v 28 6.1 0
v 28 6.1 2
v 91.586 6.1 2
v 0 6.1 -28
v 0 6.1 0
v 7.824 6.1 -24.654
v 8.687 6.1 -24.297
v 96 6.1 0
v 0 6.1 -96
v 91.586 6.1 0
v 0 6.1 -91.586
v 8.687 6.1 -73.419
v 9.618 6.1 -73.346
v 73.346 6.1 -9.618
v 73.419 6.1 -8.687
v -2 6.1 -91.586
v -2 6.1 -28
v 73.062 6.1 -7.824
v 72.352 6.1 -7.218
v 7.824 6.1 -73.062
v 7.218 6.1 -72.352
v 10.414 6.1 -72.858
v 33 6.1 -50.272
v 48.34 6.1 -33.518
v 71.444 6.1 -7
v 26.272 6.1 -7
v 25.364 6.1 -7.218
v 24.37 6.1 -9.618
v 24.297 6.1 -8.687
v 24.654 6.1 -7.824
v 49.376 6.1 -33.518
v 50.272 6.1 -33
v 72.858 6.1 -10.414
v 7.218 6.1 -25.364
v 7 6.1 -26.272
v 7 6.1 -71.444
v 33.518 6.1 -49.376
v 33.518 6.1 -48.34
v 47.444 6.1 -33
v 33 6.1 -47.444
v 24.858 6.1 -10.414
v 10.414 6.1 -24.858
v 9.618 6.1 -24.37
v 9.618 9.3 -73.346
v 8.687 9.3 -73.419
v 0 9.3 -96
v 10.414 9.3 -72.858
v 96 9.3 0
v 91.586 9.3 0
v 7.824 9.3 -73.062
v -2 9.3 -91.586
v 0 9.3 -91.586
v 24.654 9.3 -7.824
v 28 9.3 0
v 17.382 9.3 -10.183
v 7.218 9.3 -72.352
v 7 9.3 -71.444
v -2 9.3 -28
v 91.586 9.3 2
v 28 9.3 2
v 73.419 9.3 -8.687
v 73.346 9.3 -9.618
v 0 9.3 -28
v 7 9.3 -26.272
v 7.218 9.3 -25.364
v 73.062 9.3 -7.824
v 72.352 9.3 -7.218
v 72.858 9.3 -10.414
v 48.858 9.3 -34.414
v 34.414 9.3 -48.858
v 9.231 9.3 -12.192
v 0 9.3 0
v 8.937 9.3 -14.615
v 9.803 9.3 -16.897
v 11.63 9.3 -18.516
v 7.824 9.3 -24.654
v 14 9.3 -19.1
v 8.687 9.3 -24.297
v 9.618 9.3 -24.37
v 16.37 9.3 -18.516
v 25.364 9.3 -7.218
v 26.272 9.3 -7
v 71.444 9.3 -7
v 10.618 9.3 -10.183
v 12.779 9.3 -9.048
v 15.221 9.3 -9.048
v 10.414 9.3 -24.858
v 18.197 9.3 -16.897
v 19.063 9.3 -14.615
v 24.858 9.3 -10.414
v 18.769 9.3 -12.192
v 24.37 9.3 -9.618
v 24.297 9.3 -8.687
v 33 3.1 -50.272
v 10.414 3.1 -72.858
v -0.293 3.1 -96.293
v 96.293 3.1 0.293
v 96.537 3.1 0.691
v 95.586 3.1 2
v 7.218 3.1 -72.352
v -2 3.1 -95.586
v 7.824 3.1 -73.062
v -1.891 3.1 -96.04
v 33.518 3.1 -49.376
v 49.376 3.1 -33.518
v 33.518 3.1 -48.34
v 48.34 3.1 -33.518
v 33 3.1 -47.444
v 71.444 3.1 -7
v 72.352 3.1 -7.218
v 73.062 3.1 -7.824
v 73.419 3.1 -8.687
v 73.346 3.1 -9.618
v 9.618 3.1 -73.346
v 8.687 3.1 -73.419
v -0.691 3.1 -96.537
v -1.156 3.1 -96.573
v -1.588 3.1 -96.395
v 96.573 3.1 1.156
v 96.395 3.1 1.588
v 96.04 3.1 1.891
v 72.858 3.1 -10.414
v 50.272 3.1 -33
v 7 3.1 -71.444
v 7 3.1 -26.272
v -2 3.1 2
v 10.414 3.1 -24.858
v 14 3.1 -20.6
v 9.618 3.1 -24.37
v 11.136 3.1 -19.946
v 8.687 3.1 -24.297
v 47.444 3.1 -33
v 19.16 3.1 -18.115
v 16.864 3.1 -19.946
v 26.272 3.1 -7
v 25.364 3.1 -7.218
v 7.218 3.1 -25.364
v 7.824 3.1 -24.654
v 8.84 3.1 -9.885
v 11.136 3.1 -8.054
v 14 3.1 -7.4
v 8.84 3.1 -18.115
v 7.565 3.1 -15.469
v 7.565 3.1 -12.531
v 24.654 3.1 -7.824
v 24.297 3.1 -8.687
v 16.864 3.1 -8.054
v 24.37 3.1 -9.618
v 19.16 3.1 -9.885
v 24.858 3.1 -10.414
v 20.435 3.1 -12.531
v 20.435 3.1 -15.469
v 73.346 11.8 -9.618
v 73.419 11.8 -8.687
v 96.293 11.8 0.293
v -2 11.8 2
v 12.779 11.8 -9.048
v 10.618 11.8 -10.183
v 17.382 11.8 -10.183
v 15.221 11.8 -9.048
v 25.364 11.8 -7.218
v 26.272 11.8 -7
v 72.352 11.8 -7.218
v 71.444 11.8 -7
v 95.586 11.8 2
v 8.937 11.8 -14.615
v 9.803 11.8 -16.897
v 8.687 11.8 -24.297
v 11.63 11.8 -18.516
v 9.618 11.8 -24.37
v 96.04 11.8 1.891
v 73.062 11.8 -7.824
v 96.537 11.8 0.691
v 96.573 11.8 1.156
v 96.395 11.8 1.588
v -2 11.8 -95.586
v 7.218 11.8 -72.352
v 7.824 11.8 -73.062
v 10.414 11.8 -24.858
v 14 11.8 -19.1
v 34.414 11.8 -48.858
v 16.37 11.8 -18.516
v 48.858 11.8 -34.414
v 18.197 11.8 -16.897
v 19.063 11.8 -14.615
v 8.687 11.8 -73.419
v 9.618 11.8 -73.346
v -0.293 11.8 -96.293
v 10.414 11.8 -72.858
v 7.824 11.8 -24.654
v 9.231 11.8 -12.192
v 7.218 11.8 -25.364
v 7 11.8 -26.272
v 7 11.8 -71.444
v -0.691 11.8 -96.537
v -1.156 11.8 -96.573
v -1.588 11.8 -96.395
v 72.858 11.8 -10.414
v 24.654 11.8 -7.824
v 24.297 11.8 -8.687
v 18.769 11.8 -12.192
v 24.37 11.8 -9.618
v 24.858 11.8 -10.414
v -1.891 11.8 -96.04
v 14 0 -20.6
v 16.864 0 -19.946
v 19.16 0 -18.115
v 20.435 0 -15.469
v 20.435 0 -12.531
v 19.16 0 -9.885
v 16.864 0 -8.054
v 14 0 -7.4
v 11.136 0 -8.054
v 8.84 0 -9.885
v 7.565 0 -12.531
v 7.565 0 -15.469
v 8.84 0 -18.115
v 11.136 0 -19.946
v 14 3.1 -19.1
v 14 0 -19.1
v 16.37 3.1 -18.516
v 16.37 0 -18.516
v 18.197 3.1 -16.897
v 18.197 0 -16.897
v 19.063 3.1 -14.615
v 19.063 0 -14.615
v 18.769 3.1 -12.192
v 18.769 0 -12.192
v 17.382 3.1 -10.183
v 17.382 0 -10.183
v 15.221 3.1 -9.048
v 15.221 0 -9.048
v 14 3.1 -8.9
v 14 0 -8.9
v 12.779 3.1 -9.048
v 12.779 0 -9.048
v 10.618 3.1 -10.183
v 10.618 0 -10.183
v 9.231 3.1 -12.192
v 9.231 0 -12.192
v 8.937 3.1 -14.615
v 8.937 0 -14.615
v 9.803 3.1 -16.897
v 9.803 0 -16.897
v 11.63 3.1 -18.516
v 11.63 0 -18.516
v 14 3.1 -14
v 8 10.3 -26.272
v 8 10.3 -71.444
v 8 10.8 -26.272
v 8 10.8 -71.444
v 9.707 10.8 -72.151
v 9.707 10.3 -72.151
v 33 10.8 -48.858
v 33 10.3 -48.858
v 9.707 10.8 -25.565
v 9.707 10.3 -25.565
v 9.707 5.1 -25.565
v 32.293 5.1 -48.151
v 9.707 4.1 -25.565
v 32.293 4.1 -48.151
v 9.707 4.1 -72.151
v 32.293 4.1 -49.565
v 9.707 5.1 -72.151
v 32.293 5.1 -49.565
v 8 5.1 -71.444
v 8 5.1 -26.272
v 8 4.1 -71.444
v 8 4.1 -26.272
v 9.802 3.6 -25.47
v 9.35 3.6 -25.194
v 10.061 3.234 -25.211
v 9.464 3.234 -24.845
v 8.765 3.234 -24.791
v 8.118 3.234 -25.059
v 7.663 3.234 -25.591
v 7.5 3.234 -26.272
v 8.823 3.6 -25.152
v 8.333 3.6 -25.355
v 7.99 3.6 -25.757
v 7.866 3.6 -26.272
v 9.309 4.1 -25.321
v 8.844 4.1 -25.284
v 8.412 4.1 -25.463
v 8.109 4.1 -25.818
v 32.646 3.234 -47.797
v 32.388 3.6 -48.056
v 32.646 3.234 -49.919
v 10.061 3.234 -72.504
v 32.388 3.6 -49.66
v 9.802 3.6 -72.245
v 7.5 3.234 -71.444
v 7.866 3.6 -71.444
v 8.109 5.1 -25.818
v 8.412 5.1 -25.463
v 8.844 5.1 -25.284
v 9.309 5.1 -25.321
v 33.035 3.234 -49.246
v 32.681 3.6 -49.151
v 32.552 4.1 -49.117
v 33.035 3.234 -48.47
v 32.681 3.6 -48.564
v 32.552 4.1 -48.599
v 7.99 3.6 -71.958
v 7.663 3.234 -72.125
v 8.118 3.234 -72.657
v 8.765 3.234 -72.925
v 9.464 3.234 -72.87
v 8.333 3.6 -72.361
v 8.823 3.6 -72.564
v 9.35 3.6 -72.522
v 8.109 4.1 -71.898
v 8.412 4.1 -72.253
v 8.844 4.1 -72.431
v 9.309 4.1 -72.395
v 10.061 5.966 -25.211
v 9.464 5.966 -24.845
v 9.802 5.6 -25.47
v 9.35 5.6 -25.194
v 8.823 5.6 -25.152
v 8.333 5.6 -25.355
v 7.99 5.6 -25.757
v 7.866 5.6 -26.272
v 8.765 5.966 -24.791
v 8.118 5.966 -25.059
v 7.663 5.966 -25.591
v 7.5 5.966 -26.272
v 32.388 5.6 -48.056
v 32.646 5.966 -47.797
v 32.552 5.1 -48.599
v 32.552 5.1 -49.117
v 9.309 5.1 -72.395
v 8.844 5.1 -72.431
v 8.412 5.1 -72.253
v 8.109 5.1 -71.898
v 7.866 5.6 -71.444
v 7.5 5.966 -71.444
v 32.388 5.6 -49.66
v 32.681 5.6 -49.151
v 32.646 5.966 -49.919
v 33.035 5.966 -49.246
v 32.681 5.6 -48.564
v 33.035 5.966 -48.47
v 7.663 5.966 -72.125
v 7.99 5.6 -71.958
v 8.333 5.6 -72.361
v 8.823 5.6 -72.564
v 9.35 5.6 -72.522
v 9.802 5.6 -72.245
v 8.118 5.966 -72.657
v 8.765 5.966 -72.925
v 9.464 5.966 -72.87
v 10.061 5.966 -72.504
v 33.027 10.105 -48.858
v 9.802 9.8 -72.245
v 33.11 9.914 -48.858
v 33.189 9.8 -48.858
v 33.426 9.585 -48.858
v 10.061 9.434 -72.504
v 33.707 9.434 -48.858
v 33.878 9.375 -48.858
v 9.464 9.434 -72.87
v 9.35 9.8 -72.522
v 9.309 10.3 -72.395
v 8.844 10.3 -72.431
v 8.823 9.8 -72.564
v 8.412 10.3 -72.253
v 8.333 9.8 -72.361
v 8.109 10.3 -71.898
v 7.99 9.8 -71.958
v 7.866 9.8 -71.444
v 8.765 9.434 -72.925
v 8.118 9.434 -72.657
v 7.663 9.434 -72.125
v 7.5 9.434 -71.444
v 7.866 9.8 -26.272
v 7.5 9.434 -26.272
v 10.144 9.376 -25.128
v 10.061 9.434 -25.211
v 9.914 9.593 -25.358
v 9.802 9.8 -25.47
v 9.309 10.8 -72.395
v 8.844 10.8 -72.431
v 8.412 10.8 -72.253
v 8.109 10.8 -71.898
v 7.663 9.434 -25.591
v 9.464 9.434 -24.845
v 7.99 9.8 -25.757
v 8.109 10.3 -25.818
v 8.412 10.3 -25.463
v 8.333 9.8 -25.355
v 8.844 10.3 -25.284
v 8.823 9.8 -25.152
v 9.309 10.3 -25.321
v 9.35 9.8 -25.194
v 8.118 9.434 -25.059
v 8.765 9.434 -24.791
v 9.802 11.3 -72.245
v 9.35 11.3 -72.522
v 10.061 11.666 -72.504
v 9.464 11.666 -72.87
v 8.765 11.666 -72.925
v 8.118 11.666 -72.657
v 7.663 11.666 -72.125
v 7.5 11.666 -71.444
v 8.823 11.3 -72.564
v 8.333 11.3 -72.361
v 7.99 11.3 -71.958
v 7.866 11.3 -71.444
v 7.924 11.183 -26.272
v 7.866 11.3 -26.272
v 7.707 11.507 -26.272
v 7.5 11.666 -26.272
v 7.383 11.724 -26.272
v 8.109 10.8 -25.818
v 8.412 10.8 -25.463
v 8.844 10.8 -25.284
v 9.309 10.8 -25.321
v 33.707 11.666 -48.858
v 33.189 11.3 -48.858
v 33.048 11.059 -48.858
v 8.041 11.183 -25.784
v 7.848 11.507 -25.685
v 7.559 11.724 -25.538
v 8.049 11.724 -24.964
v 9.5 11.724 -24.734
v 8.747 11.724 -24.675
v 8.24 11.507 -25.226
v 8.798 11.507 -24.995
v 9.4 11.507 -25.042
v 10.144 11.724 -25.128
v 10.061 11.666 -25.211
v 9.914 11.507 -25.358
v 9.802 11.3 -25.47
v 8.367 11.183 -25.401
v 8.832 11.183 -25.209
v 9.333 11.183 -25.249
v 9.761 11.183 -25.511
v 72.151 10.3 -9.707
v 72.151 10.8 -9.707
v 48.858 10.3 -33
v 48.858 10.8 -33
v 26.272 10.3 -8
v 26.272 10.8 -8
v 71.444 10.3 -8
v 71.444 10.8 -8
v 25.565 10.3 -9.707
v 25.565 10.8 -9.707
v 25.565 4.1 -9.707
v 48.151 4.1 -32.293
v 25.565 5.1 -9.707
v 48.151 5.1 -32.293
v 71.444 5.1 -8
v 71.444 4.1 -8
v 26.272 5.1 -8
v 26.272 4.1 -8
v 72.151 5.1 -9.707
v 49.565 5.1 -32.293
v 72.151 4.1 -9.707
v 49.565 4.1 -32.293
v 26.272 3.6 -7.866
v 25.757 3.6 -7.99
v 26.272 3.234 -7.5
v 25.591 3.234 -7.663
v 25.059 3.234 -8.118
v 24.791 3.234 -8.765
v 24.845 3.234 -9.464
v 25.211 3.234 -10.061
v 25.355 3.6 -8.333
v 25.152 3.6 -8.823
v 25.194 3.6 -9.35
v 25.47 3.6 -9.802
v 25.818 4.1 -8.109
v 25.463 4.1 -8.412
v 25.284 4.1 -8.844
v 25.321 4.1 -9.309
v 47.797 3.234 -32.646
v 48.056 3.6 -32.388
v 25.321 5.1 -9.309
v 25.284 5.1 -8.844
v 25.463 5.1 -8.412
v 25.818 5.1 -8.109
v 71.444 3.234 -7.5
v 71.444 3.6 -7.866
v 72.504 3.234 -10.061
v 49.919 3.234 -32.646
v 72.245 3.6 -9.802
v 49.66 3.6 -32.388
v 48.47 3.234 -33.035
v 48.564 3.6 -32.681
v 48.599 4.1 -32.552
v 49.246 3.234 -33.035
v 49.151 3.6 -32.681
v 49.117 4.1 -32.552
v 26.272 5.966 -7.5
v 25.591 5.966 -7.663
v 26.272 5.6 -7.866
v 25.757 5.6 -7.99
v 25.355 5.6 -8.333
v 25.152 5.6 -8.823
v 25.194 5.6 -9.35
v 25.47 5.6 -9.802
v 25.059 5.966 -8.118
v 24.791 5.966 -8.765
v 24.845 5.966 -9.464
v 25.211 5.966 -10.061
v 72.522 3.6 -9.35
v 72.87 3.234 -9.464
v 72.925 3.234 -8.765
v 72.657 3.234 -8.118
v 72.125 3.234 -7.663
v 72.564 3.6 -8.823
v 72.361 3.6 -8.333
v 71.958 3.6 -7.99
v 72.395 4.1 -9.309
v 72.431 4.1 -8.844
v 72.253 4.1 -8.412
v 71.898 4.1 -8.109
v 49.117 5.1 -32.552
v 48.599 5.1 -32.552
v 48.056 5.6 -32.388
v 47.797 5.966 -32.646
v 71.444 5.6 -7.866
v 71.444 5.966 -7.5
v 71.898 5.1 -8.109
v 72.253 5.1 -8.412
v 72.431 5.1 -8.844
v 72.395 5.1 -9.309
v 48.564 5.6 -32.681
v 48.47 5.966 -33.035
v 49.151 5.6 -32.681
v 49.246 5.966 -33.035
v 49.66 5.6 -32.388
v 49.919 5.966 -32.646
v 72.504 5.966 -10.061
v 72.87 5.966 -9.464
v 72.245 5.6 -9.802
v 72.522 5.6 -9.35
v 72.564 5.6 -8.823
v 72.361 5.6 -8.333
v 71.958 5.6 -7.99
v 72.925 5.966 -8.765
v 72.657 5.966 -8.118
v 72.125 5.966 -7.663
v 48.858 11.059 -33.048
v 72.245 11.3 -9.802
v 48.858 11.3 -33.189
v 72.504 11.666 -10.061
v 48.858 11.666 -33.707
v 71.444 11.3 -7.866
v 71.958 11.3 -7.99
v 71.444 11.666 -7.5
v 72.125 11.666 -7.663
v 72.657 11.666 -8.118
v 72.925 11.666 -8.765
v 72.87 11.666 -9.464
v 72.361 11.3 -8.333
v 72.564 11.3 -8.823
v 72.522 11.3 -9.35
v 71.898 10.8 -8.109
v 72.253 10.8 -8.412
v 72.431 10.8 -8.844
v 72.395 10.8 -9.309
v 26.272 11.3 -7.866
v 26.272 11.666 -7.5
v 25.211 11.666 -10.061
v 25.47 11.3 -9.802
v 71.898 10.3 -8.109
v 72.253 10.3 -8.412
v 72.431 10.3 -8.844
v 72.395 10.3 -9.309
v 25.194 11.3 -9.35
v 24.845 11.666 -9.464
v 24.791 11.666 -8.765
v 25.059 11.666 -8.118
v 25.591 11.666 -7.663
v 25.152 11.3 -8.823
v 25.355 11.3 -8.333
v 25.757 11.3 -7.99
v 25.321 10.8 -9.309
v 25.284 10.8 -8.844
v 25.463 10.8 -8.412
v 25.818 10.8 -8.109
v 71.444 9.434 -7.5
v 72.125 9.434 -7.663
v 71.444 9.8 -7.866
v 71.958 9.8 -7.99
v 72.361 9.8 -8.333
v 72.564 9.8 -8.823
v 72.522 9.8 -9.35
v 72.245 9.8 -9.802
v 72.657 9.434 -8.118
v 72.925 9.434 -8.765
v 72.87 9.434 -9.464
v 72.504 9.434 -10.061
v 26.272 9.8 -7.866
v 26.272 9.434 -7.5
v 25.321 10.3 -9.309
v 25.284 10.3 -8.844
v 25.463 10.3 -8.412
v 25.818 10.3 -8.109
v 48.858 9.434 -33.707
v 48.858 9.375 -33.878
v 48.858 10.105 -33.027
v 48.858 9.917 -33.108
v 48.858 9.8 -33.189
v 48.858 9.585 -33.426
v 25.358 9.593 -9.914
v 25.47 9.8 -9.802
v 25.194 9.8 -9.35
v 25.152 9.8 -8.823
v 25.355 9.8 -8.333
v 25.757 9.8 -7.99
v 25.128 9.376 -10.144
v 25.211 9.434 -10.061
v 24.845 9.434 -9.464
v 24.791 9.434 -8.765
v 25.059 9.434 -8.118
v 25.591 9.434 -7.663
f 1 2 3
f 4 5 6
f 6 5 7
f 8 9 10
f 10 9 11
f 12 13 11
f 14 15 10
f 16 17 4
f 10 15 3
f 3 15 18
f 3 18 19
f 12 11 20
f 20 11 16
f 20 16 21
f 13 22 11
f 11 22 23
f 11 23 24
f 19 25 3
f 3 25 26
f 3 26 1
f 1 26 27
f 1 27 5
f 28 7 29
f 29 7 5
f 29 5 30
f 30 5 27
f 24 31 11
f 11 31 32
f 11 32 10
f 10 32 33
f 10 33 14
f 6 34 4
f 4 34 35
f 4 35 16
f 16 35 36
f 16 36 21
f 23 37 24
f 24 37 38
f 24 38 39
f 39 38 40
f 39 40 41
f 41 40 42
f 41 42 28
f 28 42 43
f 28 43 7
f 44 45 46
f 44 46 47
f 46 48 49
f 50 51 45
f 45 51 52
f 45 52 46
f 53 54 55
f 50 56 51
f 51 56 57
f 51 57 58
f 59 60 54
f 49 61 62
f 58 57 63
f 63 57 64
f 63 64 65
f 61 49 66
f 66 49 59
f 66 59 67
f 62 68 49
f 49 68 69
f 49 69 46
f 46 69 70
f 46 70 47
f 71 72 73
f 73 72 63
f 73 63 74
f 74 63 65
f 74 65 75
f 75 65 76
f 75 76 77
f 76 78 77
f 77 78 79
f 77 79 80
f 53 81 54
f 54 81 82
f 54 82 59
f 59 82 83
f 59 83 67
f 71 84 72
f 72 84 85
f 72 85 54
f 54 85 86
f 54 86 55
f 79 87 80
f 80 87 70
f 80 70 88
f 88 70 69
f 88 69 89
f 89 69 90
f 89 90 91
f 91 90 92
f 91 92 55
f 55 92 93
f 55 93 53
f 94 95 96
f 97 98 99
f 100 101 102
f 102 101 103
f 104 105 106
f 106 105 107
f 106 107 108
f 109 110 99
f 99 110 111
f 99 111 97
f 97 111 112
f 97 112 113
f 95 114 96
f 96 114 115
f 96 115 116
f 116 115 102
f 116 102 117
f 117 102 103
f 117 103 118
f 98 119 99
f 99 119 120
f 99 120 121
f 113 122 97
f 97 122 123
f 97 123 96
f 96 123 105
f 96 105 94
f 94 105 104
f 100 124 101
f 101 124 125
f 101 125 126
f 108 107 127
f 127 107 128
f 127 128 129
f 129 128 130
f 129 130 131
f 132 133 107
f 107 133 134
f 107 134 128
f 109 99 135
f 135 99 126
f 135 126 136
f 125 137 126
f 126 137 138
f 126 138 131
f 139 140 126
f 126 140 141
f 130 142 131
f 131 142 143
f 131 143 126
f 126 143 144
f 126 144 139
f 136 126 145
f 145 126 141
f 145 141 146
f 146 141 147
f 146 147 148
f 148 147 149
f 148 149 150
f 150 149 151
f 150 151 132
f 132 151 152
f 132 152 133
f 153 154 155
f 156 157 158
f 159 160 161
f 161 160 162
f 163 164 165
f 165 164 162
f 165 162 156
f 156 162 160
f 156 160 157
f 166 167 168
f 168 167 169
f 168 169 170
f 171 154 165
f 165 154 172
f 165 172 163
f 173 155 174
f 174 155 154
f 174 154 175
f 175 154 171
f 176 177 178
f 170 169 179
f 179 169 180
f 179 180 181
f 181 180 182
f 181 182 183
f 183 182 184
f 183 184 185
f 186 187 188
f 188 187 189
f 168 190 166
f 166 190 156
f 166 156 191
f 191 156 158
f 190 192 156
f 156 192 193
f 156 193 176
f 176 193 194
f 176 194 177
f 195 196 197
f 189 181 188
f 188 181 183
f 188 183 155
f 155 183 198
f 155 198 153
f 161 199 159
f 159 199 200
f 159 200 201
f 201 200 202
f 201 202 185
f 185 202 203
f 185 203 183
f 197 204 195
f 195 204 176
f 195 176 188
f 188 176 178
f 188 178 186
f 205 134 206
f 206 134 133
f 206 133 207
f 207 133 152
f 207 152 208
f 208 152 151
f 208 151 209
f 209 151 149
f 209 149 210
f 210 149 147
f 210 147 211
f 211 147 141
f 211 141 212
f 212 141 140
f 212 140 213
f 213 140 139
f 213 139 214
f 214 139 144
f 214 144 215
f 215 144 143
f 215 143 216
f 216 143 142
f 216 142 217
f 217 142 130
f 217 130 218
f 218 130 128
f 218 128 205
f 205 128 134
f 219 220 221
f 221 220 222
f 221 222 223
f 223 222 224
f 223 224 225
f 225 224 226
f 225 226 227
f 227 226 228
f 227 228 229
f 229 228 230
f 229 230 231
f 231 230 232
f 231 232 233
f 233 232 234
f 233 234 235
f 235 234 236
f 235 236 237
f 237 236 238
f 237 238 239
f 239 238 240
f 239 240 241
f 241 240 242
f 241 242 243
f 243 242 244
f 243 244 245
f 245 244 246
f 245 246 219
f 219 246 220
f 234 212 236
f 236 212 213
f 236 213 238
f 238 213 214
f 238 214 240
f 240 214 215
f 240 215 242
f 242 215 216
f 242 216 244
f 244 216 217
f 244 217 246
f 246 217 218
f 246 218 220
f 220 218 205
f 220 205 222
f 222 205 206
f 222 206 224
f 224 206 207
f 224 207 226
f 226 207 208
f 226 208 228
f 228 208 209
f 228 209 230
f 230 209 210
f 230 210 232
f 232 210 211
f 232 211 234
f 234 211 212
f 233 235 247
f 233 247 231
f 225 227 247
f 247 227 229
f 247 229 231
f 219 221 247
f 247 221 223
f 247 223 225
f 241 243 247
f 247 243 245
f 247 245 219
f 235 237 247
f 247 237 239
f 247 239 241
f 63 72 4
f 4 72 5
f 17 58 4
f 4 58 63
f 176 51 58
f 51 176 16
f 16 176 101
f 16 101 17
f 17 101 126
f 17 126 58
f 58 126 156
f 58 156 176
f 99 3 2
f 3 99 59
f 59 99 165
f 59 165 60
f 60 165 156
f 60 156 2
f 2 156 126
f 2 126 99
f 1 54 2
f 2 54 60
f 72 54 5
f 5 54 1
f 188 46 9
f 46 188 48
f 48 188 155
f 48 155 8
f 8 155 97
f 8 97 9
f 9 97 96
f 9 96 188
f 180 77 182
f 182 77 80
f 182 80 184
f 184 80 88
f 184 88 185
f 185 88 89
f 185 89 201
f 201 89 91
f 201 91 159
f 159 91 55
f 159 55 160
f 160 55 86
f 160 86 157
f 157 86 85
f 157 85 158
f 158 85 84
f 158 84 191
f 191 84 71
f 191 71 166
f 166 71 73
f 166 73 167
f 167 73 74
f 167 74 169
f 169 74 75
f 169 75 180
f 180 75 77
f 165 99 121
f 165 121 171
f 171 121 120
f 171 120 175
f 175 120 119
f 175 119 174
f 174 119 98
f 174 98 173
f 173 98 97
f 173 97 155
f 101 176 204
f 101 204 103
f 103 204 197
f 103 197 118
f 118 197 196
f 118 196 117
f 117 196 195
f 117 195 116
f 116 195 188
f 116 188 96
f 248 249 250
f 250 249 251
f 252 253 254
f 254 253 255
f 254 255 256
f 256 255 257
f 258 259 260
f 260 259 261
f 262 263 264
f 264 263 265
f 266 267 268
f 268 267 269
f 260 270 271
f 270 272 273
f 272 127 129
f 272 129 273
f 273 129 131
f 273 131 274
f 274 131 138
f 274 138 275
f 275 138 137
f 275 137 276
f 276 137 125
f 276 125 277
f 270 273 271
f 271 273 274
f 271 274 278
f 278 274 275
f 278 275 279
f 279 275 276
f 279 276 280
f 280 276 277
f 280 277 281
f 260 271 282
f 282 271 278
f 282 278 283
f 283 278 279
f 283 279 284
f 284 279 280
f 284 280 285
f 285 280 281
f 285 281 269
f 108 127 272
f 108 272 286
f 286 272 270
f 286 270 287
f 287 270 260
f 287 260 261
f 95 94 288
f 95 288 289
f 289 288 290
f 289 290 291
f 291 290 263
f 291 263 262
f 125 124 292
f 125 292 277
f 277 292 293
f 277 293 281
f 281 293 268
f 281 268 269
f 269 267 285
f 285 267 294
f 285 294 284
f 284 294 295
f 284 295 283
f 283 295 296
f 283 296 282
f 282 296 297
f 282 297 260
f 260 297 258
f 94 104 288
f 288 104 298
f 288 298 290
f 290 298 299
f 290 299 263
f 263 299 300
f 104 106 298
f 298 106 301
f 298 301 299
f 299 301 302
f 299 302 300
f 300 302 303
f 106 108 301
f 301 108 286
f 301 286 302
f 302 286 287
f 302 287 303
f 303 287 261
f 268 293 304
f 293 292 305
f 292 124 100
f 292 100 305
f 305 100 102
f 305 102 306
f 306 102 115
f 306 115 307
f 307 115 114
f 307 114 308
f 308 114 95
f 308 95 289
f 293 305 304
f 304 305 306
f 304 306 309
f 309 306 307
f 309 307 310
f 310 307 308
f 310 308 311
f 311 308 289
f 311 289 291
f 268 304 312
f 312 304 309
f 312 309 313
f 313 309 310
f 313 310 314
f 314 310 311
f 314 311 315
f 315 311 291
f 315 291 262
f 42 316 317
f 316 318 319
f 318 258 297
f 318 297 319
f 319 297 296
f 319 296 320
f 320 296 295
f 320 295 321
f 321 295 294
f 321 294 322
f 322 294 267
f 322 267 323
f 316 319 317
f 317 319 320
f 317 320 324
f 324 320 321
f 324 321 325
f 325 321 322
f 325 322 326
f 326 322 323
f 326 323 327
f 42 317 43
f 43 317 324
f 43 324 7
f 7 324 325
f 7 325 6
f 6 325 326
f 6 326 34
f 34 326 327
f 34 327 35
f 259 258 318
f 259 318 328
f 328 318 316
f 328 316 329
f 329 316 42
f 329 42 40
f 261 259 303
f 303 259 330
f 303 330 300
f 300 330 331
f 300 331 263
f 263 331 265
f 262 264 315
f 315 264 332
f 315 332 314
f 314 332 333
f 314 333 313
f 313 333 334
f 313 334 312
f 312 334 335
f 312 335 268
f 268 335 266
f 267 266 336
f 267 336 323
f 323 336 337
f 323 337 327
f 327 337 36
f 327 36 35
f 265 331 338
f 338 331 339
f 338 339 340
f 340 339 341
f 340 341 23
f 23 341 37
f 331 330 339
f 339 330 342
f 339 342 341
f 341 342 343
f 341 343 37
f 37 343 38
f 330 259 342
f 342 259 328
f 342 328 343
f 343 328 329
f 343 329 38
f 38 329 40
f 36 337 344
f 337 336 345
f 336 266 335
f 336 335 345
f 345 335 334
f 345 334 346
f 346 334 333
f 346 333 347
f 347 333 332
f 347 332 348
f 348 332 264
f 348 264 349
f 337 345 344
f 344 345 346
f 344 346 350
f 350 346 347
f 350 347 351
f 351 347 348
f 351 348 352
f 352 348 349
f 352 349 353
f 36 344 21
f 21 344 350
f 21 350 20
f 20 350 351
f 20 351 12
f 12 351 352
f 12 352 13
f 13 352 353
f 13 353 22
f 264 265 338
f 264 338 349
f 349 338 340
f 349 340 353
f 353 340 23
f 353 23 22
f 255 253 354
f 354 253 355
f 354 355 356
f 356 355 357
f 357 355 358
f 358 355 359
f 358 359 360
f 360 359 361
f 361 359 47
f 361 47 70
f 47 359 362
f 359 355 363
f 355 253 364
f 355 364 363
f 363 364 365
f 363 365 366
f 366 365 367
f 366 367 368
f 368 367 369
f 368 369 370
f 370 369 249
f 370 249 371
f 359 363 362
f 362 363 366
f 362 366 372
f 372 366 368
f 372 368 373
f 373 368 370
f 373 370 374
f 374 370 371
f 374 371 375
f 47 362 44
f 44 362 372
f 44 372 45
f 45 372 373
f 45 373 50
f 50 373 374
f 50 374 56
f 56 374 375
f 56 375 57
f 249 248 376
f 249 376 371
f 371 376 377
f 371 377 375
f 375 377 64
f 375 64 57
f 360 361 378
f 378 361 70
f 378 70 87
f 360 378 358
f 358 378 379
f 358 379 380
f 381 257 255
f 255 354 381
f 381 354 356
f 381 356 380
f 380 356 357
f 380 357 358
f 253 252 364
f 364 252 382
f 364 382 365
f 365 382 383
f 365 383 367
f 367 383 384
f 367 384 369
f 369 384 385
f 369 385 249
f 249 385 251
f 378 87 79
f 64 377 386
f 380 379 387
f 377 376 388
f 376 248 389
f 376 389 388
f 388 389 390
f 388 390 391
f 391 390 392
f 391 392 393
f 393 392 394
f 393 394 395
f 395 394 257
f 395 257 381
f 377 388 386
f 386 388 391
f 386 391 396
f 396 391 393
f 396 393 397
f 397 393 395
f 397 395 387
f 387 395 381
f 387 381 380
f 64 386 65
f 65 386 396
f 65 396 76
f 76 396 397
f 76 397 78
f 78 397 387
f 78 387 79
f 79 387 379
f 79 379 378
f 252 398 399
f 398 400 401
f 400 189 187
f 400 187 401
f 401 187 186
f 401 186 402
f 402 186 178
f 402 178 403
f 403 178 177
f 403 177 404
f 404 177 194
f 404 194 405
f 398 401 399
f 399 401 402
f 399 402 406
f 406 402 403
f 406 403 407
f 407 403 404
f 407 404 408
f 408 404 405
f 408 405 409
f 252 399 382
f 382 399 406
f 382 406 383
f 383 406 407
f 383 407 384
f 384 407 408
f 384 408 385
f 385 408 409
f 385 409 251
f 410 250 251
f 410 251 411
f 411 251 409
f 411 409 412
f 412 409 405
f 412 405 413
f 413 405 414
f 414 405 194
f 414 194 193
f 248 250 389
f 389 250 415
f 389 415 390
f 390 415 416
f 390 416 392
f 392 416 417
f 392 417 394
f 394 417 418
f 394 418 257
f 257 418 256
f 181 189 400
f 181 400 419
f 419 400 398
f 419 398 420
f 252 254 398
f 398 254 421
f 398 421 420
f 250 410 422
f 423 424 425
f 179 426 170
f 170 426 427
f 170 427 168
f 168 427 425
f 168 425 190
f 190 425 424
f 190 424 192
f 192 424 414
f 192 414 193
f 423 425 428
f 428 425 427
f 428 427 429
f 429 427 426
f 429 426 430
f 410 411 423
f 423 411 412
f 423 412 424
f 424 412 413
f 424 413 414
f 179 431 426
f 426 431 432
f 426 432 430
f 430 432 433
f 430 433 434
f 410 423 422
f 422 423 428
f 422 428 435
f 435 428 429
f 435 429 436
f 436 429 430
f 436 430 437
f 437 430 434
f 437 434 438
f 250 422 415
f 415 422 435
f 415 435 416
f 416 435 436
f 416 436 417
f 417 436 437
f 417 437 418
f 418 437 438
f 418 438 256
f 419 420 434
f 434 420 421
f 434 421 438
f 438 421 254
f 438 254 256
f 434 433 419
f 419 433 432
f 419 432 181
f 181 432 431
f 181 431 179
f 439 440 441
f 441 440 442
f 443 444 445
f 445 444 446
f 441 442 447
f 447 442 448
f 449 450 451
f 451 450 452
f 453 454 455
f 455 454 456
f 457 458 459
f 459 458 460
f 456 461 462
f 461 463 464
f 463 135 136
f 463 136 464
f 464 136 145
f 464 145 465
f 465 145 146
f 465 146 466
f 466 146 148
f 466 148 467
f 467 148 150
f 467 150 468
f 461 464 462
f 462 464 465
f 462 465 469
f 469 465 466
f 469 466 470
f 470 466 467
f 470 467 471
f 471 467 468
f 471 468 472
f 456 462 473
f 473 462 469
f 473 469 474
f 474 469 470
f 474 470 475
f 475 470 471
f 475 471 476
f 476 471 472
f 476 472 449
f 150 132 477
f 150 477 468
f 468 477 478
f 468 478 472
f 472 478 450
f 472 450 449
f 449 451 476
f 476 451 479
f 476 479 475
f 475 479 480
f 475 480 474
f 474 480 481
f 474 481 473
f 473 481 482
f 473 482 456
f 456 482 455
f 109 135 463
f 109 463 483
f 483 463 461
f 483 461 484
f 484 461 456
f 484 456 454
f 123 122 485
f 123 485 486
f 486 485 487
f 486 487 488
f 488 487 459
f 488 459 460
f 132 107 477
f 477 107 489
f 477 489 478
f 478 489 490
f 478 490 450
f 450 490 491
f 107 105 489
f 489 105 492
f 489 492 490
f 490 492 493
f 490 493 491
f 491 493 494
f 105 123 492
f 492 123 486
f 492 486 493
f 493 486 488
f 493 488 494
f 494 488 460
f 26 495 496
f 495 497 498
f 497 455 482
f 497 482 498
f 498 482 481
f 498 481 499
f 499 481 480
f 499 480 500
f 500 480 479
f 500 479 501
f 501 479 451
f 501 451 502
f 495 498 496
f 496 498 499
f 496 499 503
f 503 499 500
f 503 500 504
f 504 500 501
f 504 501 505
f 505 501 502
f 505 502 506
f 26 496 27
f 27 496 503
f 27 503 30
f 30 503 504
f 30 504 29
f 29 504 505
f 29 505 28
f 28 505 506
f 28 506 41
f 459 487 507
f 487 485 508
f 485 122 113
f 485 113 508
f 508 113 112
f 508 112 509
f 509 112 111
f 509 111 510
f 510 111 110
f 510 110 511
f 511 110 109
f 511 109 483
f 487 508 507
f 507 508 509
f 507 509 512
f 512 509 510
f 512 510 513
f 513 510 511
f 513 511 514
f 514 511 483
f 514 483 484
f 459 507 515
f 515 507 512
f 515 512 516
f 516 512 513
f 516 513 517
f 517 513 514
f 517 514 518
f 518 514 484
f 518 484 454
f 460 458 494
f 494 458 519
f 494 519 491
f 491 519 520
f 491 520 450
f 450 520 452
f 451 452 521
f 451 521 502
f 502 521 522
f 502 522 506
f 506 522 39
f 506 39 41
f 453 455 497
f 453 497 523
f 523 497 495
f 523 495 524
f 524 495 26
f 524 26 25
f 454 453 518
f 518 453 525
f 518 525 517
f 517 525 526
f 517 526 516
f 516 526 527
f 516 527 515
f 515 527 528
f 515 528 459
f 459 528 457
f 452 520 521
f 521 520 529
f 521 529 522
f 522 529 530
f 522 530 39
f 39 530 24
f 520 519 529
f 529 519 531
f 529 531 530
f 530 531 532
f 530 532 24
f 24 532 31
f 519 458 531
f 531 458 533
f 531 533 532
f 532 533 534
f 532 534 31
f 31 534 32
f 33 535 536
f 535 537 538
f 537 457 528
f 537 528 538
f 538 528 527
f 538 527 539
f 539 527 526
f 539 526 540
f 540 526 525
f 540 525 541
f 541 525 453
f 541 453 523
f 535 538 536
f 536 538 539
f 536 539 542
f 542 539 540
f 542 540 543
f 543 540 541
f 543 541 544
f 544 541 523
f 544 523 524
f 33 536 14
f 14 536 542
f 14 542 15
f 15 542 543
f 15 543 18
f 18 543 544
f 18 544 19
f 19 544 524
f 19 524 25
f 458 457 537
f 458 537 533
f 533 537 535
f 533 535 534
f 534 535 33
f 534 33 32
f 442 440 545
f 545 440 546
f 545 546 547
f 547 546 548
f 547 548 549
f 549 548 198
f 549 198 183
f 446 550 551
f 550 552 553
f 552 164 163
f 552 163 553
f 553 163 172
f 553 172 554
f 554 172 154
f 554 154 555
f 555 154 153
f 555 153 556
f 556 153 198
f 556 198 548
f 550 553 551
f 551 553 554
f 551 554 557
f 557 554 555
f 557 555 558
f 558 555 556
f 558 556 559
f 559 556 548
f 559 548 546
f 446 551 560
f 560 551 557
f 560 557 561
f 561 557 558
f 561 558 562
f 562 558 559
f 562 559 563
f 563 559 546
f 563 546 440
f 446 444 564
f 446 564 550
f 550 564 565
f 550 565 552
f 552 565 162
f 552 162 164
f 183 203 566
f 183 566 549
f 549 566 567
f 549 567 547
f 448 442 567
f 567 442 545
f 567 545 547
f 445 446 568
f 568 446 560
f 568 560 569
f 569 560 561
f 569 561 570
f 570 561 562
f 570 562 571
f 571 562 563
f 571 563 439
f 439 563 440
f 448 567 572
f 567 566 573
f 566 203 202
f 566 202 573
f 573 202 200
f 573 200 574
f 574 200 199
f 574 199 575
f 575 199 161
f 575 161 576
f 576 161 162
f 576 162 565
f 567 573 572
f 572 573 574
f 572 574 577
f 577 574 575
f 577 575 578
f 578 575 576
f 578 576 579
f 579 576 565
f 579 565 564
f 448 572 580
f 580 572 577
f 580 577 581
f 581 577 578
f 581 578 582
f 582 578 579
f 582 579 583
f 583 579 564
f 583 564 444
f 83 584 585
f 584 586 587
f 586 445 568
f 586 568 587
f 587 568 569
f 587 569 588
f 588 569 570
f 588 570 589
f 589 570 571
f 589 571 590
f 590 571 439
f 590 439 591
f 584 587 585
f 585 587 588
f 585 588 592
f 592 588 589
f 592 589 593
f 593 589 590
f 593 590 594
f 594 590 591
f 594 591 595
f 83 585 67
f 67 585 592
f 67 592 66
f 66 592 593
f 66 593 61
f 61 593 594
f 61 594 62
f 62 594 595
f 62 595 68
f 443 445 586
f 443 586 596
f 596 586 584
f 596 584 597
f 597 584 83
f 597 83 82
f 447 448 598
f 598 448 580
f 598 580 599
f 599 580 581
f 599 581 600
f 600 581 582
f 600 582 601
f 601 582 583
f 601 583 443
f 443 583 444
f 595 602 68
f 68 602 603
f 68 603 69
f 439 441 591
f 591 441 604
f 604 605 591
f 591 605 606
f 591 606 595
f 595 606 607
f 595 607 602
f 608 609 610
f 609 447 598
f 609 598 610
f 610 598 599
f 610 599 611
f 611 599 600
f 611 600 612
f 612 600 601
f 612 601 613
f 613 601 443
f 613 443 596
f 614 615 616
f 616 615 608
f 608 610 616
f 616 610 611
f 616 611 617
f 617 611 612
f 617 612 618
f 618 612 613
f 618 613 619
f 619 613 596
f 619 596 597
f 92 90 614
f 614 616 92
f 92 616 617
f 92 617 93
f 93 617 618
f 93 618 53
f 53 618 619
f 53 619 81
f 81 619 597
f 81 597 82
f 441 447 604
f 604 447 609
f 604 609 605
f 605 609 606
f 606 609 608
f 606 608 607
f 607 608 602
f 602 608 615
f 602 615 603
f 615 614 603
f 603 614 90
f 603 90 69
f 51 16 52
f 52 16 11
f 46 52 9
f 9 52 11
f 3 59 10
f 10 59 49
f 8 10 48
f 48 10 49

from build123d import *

# Parameters (mm, degrees)
BOSS_EXTRUDE1_DEPTH      = 3.1
BOSS_EXTRUDE2_DEPTH      = 3
BOSS_EXTRUDE4_DEPTH      = 3.2
BOSS_EXTRUDE4_DEPTH_BACK = 3
BOSS_EXTRUDE5_DEPTH      = 2.5
BOSS_EXTRUDE6_DEPTH      = 2.5
CUT_EXTRUDE1_START       = -3
SKETCH7_R                = 5.1
CUT_EXTRUDE1_DEPTH       = 10
BOSS_EXTRUDE7_DEPTH      = 3
FILLET1_R                = 1
CUT_EXTRUDE3_DEPTH       = 137.869712806
FILLET2_R                = 1
FILLET2_OF_MIRROR1_R     = 1
SKETCH20_W               = 4
SKETCH20_H               = 3.2
BOSS_EXTRUDE8_DEPTH      = 2
BOSS_EXTRUDE9_DEPTH      = 3.2
SKETCH22_W               = 4
SKETCH22_H               = 3.2
BOSS_EXTRUDE10_DEPTH     = 2
BOSS_EXTRUDE11_DEPTH     = 3.2


with BuildPart() as part:
    # Sketch1 → Boss-Extrude1 (new body)
    with BuildSketch(Plane(origin=(0, 0, 0), x_dir=(1, 0, 0), z_dir=(0, 1, 0))):
        with BuildLine():
            ThreePointArc((20.6, 14), (16.525710654, 20.097604915), (9.333095244, 18.666904756))
            Line((9.333095244, 18.666904756), (10.393755416, 17.606244584))
            ThreePointArc((10.393755416, 17.606244584), (15.951685505, 18.711785616), (19.1, 14))
            ThreePointArc((19.1, 14), (18.711785616, 12.048314495), (17.606244584, 10.393755416))
            Line((17.606244584, 10.393755416), (18.666904756, 9.333095244))
            ThreePointArc((18.666904756, 9.333095244), (20.097604915, 11.474289346), (20.6, 14))
        make_face()
        with BuildLine():
            Line((10.393755416, 17.606244584), (9.333095244, 18.666904756))
            ThreePointArc((9.333095244, 18.666904756), (9.333095244, 9.333095244), (18.666904756, 9.333095244))
            Line((18.666904756, 9.333095244), (17.606244584, 10.393755416))
            ThreePointArc((17.606244584, 10.393755416), (10.393755416, 10.393755416), (10.393755416, 17.606244584))
        make_face()
    extrude(amount=BOSS_EXTRUDE1_DEPTH)

    # Sketch2 → Boss-Extrude2 (add)
    with BuildSketch(Plane(origin=(0, 3.1, 0), x_dir=(1, 0, 0), z_dir=(0, 1, 0))):
        with BuildLine():
            Line((16.844257653, 19.955686224), (0, 28))
            Line((0, 28), (4.242424242, 23.757575758))
            Line((4.242424242, 23.757575758), (8.980990355, 21.494578276))
            Line((8.980990355, 21.494578276), (7.411542732, 20.588457268))
            Line((7.411542732, 20.588457268), (9.333095244, 18.666904756))
            ThreePointArc((9.333095244, 18.666904756), (12.883868272, 20.504940428), (16.844257653, 19.955686224))
        make_face()
        with BuildLine():
            Line((0, 28), (0, 0))
            Line((0, 0), (9.333095244, 9.333095244))
            ThreePointArc((9.333095244, 9.333095244), (7.4, 14), (9.333095244, 18.666904756))
            Line((9.333095244, 18.666904756), (7.411542732, 20.588457268))
            Line((7.411542732, 20.588457268), (4, 18.618802154))
            Line((4, 18.618802154), (4, 23.873350327))
            Line((4, 23.873350327), (4.242424242, 23.757575758))
            Line((4.242424242, 23.757575758), (0, 28))
        make_face()
        with BuildLine():
            Line((9.333095244, 9.333095244), (0, 0))
            Line((0, 0), (28, 0))
            Line((28, 0), (23.757575758, 4.242424242))
            Line((23.757575758, 4.242424242), (23.873350327, 4))
            Line((23.873350327, 4), (18.618802154, 4))
            Line((18.618802154, 4), (20.588457268, 7.411542732))
            Line((20.588457268, 7.411542732), (18.666904756, 9.333095244))
            ThreePointArc((18.666904756, 9.333095244), (14, 7.4), (9.333095244, 9.333095244))
        make_face()
        with BuildLine():
            Line((23.757575758, 4.242424242), (28, 0))
            Line((28, 0), (19.955686224, 16.844257653))
            ThreePointArc((19.955686224, 16.844257653), (20.436906442, 15.458161671), (20.6, 14))
            ThreePointArc((20.6, 14), (20.097604915, 11.474289346), (18.666904756, 9.333095244))
            Line((18.666904756, 9.333095244), (20.588457268, 7.411542732))
            Line((20.588457268, 7.411542732), (21.494578276, 8.980990355))
            Line((21.494578276, 8.980990355), (23.757575758, 4.242424242))
        make_face()
        with BuildLine():
            ThreePointArc((9.333095244, 18.666904756), (7.4, 14), (9.333095244, 9.333095244))
            Line((9.333095244, 9.333095244), (10.393755416, 10.393755416))
            ThreePointArc((10.393755416, 10.393755416), (8.9, 14), (10.393755416, 17.606244584))
            Line((10.393755416, 17.606244584), (9.333095244, 18.666904756))
        make_face()
        with BuildLine():
            Line((10.393755416, 10.393755416), (9.333095244, 9.333095244))
            ThreePointArc((9.333095244, 9.333095244), (14, 7.4), (18.666904756, 9.333095244))
            Line((18.666904756, 9.333095244), (17.606244584, 10.393755416))
            ThreePointArc((17.606244584, 10.393755416), (14, 8.9), (10.393755416, 10.393755416))
        make_face()
        with BuildLine():
            ThreePointArc((18.666904756, 18.666904756), (17.810463174, 19.388911801), (16.844257653, 19.955686224))
            ThreePointArc((16.844257653, 19.955686224), (12.883868272, 20.504940428), (9.333095244, 18.666904756))
            Line((9.333095244, 18.666904756), (10.393755416, 17.606244584))
            ThreePointArc((10.393755416, 17.606244584), (14, 19.1), (17.606244584, 17.606244584))
            Line((17.606244584, 17.606244584), (18.666904756, 18.666904756))
        make_face()
        with BuildLine():
            ThreePointArc((20.6, 14), (20.436906442, 15.458161671), (19.955686224, 16.844257653))
            ThreePointArc((19.955686224, 16.844257653), (19.388911801, 17.810463174), (18.666904756, 18.666904756))
            Line((18.666904756, 18.666904756), (17.606244584, 17.606244584))
            ThreePointArc((17.606244584, 17.606244584), (18.711785616, 15.951685505), (19.1, 14))
            ThreePointArc((19.1, 14), (18.711785616, 12.048314495), (17.606244584, 10.393755416))
            Line((17.606244584, 10.393755416), (18.666904756, 9.333095244))
            ThreePointArc((18.666904756, 9.333095244), (20.097604915, 11.474289346), (20.6, 14))
        make_face()
        with BuildLine():
            ThreePointArc((10.393755416, 17.606244584), (8.9, 14), (10.393755416, 10.393755416))
            Line((10.393755416, 10.393755416), (14, 14))
            Line((14, 14), (10.393755416, 17.606244584))
        make_face()
        with BuildLine():
            Line((14, 14), (10.393755416, 10.393755416))
            ThreePointArc((10.393755416, 10.393755416), (14, 8.9), (17.606244584, 10.393755416))
            Line((17.606244584, 10.393755416), (14, 14))
        make_face()
        with BuildLine():
            Line((17.606244584, 17.606244584), (14, 14))
            Line((14, 14), (17.606244584, 10.393755416))
            ThreePointArc((17.606244584, 10.393755416), (18.711785616, 12.048314495), (19.1, 14))
            ThreePointArc((19.1, 14), (18.711785616, 15.951685505), (17.606244584, 17.606244584))
        make_face()
        with BuildLine():
            Line((10.393755416, 17.606244584), (14, 14))
            Line((14, 14), (17.606244584, 17.606244584))
            ThreePointArc((17.606244584, 17.606244584), (14, 19.1), (10.393755416, 17.606244584))
        make_face()
    extrude(amount=BOSS_EXTRUDE2_DEPTH)

    # Sketch4 → Boss-Extrude4 (add, two sides: drawn at the far end of the back side and taken through both)
    with BuildSketch(Plane(origin=(0, 6.1, 0), x_dir=(1, 0, 0), z_dir=(0, 1, 0)).offset(-BOSS_EXTRUDE4_DEPTH_BACK)):
        Polygon((0, 28), (-2, 28), (-2, -2), (28, -2), (28, 0), (0, 0), align=None)
    extrude(amount=BOSS_EXTRUDE4_DEPTH + BOSS_EXTRUDE4_DEPTH_BACK)

    # Sketch5 → Boss-Extrude5 (add)
    with BuildSketch(Plane(origin=(0, 9.3, 0), x_dir=(1, 0, 0), z_dir=(0, 1, 0))):
        with BuildLine():
            Line((-2, 28), (0, 28))
            Line((0, 28), (15.695653699, 20.504225127))
            ThreePointArc((15.695653699, 20.504225127), (18.512471949, 18.512471949), (20.504225127, 15.695653699))
            Line((20.504225127, 15.695653699), (28, 0))
            Line((28, 0), (28, -2))
            Line((28, -2), (-2, -2))
            Line((-2, -2), (-2, 28))
        make_face()
    extrude(amount=BOSS_EXTRUDE5_DEPTH)

    # Sketch6 → Boss-Extrude6 (add)
    with BuildSketch(Plane(origin=(0, 11.8, 0), x_dir=(1, 0, 0), z_dir=(0, 1, 0))):
        Polygon((-2, -2), (-2, 98), (98, -2), align=None)
    extrude(amount=-BOSS_EXTRUDE6_DEPTH)

    # Sketch7 → Cut-Extrude1 (cut)
    with BuildSketch(Plane.XZ.offset(-3.1).offset(CUT_EXTRUDE1_START)):
        with Locations(Location((14, -14, 0), (0, 0, 270))):
            Circle(SKETCH7_R)
    extrude(amount=-CUT_EXTRUDE1_DEPTH, mode=Mode.SUBTRACT)

    # Sketch18 → Boss-Extrude7 (add)
    with BuildSketch(Plane.XZ.offset(-3.1)):
        Polygon((-2, 2), (98, 2), (-2, -98), align=None)
    extrude(amount=-BOSS_EXTRUDE7_DEPTH)

    # Fillet1
    fillet1_edges = [part.edges().sort_by_distance(p)[0] for p in [
        (-2, 4.6, -98),
        (98, 4.6, 2),
        (98, 10.55, 2),
        (-2, 10.55, -98),
    ]]
    fillet(fillet1_edges, radius=FILLET1_R)

    # Sketch19 → Cut-Extrude3 (cut, through all)
    with BuildSketch(Plane.XZ.offset(-3.1)):
        Polygon((33, -48.857864376), (8, -73.857864376), (8, -23.857864376), align=None)
    cut_extrude3 = extrude(amount=-CUT_EXTRUDE3_DEPTH, mode=Mode.SUBTRACT)

    # Fillet2
    fillet2_edges = [part.edges().sort_by_distance(p)[0] for p in [
        (20.5, 6.1, -61.357864376),
        (20.5, 3.1, -61.357864376),
        (20.5, 3.1, -36.357864376),
        (20.5, 6.1, -36.357864376),
        (20.5, 11.8, -36.357864376),
        (20.5, 11.8, -61.357864376),
        (20.5, 9.3, -61.357864376),
        (20.5, 9.3, -36.357864376),
        (8, 4.6, -73.857864376),
        (8, 3.1, -48.857864376),
        (8, 4.6, -23.857864376),
        (8, 6.1, -48.857864376),
        (8, 11.8, -48.857864376),
        (8, 10.55, -73.857864376),
        (8, 9.3, -48.857864376),
        (8, 10.55, -23.857864376),
        (33, 4.6, -48.857864376),
    ]]
    fillet(fillet2_edges, radius=FILLET2_R)

    # Mirror1: Cut-Extrude3 across plane
    add(cut_extrude3.mirror(Plane(origin=(0, 0, 0), x_dir=(-0.7071067811865475, 0, 0.7071067811865477), z_dir=(-0.7071067811865476, 0, -0.7071067811865475))), mode=Mode.SUBTRACT)

    # Fillet2 of Mirror1
    fillet2_of_mirror1_edges = [part.edges().sort_by_distance(p)[0] for p in [
        (61.357864376, 6.1, -20.5),
        (61.357864376, 3.1, -20.5),
        (36.357864376, 3.1, -20.5),
        (36.357864376, 6.1, -20.5),
        (36.357864376, 11.8, -20.5),
        (61.357864376, 11.8, -20.5),
        (61.357864376, 9.3, -20.5),
        (36.357864376, 9.3, -20.5),
        (73.857864376, 4.6, -8),
        (48.857864376, 3.1, -8),
        (23.857864376, 4.6, -8),
        (48.857864376, 6.1, -8),
        (48.857864376, 11.8, -8),
        (73.857864376, 10.55, -8),
        (48.857864376, 9.3, -8),
        (23.857864376, 10.55, -8),
        (48.857864376, 4.6, -33),
    ]]
    fillet(fillet2_of_mirror1_edges, radius=FILLET2_OF_MIRROR1_R)

    # Sketch20 → Boss-Extrude8 (add)
    with BuildSketch(Plane.ZY.offset(2)):
        with Locations((-93.585786438, 7.7)):
            Rectangle(SKETCH20_W, SKETCH20_H)
    extrude(amount=-BOSS_EXTRUDE8_DEPTH)

    # Sketch21 → Boss-Extrude9 (add)
    with BuildSketch(Plane(origin=(0, 6.1, 0), x_dir=(1, 0, 0), z_dir=(0, 1, 0))):
        with BuildLine():
            Line((-2, 95.585786438), (0, 95.585786438))
            Line((0, 95.585786438), (0, 96))
            Line((0, 96), (-0.292893219, 96.292893219))
            ThreePointArc((-0.292893219, 96.292893219), (-1.382683432, 96.50966597), (-2, 95.585786438))
        make_face()
    extrude(amount=BOSS_EXTRUDE9_DEPTH)

    # Sketch22 → Boss-Extrude10 (add)
    with BuildSketch(Plane.XY.offset(2)):
        with Locations((93.585786438, 7.7)):
            Rectangle(SKETCH22_W, SKETCH22_H)
    extrude(amount=-BOSS_EXTRUDE10_DEPTH)

    # Sketch23 → Boss-Extrude11 (add)
    with BuildSketch(Plane(origin=(0, 6.1, 0), x_dir=(1, 0, 0), z_dir=(0, 1, 0))):
        with BuildLine():
            Line((95.585786438, 0), (96, 0))
            Line((96, 0), (96.292893219, -0.292893219))
            ThreePointArc((96.292893219, -0.292893219), (96.50966597, -1.382683432), (95.585786438, -2))
            Line((95.585786438, -2), (95.585786438, 0))
        make_face()
    extrude(amount=BOSS_EXTRUDE11_DEPTH)


solid = part.part
